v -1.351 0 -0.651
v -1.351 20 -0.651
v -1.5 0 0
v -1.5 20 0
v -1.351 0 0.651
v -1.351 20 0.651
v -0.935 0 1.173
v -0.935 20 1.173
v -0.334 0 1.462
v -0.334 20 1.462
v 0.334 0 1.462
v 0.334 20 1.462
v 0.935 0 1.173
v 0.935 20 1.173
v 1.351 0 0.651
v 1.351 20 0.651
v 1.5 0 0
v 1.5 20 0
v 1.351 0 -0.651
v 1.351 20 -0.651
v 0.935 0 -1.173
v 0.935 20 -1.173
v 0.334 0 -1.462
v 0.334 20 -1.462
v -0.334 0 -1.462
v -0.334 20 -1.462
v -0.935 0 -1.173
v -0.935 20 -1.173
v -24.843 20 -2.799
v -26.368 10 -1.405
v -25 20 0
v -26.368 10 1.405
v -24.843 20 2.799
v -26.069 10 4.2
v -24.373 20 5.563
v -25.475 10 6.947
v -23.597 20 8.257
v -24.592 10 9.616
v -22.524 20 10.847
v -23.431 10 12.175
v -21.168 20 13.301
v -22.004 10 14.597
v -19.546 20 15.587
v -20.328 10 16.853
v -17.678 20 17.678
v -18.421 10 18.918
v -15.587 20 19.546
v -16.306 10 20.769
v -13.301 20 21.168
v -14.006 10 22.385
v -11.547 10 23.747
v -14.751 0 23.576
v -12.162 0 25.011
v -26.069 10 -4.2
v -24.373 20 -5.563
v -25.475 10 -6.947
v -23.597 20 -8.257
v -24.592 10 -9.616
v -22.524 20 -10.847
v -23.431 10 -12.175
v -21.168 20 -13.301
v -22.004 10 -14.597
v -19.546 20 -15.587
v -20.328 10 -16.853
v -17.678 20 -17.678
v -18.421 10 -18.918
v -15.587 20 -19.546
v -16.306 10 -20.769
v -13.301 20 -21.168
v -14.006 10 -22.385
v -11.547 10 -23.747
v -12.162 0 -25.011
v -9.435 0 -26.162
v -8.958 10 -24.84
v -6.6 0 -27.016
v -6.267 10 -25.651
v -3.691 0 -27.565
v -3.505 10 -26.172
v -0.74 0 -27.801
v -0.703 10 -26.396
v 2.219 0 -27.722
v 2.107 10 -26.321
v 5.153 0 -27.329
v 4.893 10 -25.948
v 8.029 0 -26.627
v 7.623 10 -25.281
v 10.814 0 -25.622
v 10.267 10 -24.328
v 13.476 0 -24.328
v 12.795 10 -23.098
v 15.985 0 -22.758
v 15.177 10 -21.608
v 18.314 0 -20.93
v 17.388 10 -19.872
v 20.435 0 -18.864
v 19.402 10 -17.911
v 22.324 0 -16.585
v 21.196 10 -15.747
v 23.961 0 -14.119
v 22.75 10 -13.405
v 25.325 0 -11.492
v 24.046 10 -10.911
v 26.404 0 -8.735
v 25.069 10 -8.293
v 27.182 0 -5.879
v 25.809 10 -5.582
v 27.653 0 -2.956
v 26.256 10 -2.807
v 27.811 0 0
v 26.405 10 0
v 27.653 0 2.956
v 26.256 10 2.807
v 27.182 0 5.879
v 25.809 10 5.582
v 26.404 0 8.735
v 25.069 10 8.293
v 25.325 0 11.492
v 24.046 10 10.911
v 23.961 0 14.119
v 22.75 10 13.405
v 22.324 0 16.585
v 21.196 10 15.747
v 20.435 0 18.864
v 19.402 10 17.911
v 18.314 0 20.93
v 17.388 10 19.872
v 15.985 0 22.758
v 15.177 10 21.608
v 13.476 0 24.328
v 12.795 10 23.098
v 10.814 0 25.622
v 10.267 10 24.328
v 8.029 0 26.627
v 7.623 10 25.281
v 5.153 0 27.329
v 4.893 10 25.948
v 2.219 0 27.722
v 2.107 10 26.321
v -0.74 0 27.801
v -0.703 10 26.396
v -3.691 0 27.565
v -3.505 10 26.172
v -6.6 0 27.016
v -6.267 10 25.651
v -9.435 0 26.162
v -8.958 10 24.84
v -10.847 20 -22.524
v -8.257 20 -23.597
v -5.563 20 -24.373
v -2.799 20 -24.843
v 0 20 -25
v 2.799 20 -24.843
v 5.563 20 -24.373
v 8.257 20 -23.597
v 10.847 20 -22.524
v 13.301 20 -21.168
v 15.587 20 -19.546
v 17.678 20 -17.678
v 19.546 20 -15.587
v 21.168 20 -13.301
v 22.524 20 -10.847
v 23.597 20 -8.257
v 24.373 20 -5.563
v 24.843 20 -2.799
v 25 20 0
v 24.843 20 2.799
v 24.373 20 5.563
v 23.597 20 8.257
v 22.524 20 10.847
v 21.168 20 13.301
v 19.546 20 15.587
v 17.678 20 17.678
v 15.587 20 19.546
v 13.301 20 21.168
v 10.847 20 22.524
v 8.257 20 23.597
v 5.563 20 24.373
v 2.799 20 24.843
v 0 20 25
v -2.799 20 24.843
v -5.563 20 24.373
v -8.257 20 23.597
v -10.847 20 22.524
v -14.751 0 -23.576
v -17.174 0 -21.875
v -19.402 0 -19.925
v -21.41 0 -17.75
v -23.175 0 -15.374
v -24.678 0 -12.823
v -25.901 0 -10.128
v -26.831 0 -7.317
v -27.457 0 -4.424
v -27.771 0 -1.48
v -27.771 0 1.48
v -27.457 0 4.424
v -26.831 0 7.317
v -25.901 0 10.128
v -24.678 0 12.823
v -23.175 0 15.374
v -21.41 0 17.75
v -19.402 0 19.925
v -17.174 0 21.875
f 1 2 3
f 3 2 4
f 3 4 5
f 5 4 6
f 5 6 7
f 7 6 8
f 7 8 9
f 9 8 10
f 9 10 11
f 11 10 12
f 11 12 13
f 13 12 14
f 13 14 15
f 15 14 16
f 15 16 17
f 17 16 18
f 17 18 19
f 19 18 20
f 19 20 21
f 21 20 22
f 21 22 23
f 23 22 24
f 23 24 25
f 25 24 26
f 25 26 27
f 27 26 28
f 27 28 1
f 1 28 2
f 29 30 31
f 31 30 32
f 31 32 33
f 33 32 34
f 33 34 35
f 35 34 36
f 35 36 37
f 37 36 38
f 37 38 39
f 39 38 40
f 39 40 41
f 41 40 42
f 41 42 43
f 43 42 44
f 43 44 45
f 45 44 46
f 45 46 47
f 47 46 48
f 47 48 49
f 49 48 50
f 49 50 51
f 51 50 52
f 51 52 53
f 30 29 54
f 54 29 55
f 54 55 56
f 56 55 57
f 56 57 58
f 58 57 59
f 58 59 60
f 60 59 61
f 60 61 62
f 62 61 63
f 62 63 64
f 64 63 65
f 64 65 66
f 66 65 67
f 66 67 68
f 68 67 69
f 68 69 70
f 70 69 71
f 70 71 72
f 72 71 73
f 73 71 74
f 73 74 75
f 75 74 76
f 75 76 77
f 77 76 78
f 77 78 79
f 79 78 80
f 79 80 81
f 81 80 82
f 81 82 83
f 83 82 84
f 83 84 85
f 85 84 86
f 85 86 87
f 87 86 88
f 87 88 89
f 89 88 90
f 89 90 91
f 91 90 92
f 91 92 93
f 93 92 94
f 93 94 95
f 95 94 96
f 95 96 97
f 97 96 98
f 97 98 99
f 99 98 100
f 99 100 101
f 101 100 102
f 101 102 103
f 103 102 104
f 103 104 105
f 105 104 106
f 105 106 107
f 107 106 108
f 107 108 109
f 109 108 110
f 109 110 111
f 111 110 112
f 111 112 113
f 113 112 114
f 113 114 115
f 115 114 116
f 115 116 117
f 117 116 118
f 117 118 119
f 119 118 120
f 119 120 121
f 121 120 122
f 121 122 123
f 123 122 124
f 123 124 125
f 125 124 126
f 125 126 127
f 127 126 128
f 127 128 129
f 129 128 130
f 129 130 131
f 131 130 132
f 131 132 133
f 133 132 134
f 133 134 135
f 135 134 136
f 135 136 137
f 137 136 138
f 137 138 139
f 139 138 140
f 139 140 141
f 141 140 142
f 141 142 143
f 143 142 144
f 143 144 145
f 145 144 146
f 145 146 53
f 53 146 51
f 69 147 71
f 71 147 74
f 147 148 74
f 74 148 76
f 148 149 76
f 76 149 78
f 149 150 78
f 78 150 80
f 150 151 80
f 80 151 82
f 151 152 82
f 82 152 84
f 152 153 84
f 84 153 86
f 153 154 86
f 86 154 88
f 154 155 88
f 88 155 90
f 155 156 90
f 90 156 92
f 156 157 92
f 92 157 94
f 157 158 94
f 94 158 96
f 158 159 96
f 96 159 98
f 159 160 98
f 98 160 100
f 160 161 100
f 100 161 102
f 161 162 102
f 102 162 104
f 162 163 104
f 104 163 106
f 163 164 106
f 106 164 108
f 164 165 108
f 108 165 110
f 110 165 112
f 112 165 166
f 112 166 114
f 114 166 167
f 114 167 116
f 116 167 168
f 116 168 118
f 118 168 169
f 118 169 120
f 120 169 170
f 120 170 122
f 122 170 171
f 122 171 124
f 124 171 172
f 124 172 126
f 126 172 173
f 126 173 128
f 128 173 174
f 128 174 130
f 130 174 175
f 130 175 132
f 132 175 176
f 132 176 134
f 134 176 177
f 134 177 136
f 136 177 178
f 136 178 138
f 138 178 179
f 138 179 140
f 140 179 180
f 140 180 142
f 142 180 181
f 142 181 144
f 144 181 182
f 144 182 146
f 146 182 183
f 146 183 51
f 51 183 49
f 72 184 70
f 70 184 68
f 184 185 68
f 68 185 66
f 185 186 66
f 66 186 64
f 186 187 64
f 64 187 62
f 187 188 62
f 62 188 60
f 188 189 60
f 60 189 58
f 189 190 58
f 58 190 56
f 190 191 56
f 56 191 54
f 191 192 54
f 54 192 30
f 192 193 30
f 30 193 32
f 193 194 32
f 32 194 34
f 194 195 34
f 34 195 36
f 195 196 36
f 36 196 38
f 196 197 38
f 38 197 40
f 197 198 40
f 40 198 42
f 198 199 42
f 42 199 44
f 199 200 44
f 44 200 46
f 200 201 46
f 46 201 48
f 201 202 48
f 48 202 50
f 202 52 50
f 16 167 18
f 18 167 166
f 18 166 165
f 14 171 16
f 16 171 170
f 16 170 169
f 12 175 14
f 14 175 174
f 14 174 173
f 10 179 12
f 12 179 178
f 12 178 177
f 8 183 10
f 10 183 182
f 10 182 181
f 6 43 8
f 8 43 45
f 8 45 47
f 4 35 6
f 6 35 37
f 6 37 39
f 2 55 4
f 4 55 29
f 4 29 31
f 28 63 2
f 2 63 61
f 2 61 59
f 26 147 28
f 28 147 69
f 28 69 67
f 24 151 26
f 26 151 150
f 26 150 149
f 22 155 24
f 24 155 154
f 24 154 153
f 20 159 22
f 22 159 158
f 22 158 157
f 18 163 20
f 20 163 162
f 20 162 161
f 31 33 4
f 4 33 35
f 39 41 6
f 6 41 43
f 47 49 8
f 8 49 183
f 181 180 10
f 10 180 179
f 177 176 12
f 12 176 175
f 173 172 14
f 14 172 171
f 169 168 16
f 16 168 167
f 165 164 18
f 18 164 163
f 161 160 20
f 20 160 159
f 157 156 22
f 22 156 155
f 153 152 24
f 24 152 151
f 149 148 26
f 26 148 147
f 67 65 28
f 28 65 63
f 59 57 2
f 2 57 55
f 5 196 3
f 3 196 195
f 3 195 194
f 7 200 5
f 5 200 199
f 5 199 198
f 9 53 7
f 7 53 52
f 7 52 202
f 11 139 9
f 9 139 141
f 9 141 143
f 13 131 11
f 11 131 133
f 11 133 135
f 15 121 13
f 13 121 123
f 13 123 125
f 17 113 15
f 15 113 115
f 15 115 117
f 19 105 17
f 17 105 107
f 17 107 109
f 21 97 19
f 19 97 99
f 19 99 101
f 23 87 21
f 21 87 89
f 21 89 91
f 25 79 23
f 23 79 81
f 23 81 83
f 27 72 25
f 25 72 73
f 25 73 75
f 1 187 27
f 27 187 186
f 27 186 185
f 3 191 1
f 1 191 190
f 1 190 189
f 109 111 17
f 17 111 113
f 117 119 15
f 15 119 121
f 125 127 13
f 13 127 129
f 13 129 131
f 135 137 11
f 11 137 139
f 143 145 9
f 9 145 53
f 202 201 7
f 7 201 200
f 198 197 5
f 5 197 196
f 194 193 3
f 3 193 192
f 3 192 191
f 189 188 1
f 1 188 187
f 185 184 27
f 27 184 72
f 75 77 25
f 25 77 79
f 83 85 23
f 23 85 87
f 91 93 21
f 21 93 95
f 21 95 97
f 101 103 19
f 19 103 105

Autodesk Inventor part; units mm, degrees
ref_plane "YZ Plane" through (0, 0, 0) normal (1, 0, 0) x (0, 1, 0)
ref_plane "XZ Plane" through (0, 0, 0) normal (0, 1, 0) x (-1, 0, 0)
ref_plane "XY Plane" through (0, 0, 0) normal (0, 0, 1) x (1, 0, 0)
sketch "Sketch1" plane through (0, 0, 0) normal (0, 1, 0) x (-1, 0, 0)
  circle A0 centre (0, 0) radius 25
  dimension "d0" = 50
extrude "Extrusion1" add sketch "Sketch1" along normal blind 20
draft "FaceDraft1" angle 8 pull direction (0, 1, 0) faces at (-24.9189, 13.3333, -2.0117) fixed edges at (25, 20, 0)
sketch "Sketch2" plane through (0, 20, 0) normal (0, 1, 0) x (1, 0, 0)
  point P0 (0, 0)
  point P1 (0, 0)
hole "Hole1" at (0, 20, 0) direction (0, -1, 0) diameter 3 end through all
properties part number "shoulder_base"
